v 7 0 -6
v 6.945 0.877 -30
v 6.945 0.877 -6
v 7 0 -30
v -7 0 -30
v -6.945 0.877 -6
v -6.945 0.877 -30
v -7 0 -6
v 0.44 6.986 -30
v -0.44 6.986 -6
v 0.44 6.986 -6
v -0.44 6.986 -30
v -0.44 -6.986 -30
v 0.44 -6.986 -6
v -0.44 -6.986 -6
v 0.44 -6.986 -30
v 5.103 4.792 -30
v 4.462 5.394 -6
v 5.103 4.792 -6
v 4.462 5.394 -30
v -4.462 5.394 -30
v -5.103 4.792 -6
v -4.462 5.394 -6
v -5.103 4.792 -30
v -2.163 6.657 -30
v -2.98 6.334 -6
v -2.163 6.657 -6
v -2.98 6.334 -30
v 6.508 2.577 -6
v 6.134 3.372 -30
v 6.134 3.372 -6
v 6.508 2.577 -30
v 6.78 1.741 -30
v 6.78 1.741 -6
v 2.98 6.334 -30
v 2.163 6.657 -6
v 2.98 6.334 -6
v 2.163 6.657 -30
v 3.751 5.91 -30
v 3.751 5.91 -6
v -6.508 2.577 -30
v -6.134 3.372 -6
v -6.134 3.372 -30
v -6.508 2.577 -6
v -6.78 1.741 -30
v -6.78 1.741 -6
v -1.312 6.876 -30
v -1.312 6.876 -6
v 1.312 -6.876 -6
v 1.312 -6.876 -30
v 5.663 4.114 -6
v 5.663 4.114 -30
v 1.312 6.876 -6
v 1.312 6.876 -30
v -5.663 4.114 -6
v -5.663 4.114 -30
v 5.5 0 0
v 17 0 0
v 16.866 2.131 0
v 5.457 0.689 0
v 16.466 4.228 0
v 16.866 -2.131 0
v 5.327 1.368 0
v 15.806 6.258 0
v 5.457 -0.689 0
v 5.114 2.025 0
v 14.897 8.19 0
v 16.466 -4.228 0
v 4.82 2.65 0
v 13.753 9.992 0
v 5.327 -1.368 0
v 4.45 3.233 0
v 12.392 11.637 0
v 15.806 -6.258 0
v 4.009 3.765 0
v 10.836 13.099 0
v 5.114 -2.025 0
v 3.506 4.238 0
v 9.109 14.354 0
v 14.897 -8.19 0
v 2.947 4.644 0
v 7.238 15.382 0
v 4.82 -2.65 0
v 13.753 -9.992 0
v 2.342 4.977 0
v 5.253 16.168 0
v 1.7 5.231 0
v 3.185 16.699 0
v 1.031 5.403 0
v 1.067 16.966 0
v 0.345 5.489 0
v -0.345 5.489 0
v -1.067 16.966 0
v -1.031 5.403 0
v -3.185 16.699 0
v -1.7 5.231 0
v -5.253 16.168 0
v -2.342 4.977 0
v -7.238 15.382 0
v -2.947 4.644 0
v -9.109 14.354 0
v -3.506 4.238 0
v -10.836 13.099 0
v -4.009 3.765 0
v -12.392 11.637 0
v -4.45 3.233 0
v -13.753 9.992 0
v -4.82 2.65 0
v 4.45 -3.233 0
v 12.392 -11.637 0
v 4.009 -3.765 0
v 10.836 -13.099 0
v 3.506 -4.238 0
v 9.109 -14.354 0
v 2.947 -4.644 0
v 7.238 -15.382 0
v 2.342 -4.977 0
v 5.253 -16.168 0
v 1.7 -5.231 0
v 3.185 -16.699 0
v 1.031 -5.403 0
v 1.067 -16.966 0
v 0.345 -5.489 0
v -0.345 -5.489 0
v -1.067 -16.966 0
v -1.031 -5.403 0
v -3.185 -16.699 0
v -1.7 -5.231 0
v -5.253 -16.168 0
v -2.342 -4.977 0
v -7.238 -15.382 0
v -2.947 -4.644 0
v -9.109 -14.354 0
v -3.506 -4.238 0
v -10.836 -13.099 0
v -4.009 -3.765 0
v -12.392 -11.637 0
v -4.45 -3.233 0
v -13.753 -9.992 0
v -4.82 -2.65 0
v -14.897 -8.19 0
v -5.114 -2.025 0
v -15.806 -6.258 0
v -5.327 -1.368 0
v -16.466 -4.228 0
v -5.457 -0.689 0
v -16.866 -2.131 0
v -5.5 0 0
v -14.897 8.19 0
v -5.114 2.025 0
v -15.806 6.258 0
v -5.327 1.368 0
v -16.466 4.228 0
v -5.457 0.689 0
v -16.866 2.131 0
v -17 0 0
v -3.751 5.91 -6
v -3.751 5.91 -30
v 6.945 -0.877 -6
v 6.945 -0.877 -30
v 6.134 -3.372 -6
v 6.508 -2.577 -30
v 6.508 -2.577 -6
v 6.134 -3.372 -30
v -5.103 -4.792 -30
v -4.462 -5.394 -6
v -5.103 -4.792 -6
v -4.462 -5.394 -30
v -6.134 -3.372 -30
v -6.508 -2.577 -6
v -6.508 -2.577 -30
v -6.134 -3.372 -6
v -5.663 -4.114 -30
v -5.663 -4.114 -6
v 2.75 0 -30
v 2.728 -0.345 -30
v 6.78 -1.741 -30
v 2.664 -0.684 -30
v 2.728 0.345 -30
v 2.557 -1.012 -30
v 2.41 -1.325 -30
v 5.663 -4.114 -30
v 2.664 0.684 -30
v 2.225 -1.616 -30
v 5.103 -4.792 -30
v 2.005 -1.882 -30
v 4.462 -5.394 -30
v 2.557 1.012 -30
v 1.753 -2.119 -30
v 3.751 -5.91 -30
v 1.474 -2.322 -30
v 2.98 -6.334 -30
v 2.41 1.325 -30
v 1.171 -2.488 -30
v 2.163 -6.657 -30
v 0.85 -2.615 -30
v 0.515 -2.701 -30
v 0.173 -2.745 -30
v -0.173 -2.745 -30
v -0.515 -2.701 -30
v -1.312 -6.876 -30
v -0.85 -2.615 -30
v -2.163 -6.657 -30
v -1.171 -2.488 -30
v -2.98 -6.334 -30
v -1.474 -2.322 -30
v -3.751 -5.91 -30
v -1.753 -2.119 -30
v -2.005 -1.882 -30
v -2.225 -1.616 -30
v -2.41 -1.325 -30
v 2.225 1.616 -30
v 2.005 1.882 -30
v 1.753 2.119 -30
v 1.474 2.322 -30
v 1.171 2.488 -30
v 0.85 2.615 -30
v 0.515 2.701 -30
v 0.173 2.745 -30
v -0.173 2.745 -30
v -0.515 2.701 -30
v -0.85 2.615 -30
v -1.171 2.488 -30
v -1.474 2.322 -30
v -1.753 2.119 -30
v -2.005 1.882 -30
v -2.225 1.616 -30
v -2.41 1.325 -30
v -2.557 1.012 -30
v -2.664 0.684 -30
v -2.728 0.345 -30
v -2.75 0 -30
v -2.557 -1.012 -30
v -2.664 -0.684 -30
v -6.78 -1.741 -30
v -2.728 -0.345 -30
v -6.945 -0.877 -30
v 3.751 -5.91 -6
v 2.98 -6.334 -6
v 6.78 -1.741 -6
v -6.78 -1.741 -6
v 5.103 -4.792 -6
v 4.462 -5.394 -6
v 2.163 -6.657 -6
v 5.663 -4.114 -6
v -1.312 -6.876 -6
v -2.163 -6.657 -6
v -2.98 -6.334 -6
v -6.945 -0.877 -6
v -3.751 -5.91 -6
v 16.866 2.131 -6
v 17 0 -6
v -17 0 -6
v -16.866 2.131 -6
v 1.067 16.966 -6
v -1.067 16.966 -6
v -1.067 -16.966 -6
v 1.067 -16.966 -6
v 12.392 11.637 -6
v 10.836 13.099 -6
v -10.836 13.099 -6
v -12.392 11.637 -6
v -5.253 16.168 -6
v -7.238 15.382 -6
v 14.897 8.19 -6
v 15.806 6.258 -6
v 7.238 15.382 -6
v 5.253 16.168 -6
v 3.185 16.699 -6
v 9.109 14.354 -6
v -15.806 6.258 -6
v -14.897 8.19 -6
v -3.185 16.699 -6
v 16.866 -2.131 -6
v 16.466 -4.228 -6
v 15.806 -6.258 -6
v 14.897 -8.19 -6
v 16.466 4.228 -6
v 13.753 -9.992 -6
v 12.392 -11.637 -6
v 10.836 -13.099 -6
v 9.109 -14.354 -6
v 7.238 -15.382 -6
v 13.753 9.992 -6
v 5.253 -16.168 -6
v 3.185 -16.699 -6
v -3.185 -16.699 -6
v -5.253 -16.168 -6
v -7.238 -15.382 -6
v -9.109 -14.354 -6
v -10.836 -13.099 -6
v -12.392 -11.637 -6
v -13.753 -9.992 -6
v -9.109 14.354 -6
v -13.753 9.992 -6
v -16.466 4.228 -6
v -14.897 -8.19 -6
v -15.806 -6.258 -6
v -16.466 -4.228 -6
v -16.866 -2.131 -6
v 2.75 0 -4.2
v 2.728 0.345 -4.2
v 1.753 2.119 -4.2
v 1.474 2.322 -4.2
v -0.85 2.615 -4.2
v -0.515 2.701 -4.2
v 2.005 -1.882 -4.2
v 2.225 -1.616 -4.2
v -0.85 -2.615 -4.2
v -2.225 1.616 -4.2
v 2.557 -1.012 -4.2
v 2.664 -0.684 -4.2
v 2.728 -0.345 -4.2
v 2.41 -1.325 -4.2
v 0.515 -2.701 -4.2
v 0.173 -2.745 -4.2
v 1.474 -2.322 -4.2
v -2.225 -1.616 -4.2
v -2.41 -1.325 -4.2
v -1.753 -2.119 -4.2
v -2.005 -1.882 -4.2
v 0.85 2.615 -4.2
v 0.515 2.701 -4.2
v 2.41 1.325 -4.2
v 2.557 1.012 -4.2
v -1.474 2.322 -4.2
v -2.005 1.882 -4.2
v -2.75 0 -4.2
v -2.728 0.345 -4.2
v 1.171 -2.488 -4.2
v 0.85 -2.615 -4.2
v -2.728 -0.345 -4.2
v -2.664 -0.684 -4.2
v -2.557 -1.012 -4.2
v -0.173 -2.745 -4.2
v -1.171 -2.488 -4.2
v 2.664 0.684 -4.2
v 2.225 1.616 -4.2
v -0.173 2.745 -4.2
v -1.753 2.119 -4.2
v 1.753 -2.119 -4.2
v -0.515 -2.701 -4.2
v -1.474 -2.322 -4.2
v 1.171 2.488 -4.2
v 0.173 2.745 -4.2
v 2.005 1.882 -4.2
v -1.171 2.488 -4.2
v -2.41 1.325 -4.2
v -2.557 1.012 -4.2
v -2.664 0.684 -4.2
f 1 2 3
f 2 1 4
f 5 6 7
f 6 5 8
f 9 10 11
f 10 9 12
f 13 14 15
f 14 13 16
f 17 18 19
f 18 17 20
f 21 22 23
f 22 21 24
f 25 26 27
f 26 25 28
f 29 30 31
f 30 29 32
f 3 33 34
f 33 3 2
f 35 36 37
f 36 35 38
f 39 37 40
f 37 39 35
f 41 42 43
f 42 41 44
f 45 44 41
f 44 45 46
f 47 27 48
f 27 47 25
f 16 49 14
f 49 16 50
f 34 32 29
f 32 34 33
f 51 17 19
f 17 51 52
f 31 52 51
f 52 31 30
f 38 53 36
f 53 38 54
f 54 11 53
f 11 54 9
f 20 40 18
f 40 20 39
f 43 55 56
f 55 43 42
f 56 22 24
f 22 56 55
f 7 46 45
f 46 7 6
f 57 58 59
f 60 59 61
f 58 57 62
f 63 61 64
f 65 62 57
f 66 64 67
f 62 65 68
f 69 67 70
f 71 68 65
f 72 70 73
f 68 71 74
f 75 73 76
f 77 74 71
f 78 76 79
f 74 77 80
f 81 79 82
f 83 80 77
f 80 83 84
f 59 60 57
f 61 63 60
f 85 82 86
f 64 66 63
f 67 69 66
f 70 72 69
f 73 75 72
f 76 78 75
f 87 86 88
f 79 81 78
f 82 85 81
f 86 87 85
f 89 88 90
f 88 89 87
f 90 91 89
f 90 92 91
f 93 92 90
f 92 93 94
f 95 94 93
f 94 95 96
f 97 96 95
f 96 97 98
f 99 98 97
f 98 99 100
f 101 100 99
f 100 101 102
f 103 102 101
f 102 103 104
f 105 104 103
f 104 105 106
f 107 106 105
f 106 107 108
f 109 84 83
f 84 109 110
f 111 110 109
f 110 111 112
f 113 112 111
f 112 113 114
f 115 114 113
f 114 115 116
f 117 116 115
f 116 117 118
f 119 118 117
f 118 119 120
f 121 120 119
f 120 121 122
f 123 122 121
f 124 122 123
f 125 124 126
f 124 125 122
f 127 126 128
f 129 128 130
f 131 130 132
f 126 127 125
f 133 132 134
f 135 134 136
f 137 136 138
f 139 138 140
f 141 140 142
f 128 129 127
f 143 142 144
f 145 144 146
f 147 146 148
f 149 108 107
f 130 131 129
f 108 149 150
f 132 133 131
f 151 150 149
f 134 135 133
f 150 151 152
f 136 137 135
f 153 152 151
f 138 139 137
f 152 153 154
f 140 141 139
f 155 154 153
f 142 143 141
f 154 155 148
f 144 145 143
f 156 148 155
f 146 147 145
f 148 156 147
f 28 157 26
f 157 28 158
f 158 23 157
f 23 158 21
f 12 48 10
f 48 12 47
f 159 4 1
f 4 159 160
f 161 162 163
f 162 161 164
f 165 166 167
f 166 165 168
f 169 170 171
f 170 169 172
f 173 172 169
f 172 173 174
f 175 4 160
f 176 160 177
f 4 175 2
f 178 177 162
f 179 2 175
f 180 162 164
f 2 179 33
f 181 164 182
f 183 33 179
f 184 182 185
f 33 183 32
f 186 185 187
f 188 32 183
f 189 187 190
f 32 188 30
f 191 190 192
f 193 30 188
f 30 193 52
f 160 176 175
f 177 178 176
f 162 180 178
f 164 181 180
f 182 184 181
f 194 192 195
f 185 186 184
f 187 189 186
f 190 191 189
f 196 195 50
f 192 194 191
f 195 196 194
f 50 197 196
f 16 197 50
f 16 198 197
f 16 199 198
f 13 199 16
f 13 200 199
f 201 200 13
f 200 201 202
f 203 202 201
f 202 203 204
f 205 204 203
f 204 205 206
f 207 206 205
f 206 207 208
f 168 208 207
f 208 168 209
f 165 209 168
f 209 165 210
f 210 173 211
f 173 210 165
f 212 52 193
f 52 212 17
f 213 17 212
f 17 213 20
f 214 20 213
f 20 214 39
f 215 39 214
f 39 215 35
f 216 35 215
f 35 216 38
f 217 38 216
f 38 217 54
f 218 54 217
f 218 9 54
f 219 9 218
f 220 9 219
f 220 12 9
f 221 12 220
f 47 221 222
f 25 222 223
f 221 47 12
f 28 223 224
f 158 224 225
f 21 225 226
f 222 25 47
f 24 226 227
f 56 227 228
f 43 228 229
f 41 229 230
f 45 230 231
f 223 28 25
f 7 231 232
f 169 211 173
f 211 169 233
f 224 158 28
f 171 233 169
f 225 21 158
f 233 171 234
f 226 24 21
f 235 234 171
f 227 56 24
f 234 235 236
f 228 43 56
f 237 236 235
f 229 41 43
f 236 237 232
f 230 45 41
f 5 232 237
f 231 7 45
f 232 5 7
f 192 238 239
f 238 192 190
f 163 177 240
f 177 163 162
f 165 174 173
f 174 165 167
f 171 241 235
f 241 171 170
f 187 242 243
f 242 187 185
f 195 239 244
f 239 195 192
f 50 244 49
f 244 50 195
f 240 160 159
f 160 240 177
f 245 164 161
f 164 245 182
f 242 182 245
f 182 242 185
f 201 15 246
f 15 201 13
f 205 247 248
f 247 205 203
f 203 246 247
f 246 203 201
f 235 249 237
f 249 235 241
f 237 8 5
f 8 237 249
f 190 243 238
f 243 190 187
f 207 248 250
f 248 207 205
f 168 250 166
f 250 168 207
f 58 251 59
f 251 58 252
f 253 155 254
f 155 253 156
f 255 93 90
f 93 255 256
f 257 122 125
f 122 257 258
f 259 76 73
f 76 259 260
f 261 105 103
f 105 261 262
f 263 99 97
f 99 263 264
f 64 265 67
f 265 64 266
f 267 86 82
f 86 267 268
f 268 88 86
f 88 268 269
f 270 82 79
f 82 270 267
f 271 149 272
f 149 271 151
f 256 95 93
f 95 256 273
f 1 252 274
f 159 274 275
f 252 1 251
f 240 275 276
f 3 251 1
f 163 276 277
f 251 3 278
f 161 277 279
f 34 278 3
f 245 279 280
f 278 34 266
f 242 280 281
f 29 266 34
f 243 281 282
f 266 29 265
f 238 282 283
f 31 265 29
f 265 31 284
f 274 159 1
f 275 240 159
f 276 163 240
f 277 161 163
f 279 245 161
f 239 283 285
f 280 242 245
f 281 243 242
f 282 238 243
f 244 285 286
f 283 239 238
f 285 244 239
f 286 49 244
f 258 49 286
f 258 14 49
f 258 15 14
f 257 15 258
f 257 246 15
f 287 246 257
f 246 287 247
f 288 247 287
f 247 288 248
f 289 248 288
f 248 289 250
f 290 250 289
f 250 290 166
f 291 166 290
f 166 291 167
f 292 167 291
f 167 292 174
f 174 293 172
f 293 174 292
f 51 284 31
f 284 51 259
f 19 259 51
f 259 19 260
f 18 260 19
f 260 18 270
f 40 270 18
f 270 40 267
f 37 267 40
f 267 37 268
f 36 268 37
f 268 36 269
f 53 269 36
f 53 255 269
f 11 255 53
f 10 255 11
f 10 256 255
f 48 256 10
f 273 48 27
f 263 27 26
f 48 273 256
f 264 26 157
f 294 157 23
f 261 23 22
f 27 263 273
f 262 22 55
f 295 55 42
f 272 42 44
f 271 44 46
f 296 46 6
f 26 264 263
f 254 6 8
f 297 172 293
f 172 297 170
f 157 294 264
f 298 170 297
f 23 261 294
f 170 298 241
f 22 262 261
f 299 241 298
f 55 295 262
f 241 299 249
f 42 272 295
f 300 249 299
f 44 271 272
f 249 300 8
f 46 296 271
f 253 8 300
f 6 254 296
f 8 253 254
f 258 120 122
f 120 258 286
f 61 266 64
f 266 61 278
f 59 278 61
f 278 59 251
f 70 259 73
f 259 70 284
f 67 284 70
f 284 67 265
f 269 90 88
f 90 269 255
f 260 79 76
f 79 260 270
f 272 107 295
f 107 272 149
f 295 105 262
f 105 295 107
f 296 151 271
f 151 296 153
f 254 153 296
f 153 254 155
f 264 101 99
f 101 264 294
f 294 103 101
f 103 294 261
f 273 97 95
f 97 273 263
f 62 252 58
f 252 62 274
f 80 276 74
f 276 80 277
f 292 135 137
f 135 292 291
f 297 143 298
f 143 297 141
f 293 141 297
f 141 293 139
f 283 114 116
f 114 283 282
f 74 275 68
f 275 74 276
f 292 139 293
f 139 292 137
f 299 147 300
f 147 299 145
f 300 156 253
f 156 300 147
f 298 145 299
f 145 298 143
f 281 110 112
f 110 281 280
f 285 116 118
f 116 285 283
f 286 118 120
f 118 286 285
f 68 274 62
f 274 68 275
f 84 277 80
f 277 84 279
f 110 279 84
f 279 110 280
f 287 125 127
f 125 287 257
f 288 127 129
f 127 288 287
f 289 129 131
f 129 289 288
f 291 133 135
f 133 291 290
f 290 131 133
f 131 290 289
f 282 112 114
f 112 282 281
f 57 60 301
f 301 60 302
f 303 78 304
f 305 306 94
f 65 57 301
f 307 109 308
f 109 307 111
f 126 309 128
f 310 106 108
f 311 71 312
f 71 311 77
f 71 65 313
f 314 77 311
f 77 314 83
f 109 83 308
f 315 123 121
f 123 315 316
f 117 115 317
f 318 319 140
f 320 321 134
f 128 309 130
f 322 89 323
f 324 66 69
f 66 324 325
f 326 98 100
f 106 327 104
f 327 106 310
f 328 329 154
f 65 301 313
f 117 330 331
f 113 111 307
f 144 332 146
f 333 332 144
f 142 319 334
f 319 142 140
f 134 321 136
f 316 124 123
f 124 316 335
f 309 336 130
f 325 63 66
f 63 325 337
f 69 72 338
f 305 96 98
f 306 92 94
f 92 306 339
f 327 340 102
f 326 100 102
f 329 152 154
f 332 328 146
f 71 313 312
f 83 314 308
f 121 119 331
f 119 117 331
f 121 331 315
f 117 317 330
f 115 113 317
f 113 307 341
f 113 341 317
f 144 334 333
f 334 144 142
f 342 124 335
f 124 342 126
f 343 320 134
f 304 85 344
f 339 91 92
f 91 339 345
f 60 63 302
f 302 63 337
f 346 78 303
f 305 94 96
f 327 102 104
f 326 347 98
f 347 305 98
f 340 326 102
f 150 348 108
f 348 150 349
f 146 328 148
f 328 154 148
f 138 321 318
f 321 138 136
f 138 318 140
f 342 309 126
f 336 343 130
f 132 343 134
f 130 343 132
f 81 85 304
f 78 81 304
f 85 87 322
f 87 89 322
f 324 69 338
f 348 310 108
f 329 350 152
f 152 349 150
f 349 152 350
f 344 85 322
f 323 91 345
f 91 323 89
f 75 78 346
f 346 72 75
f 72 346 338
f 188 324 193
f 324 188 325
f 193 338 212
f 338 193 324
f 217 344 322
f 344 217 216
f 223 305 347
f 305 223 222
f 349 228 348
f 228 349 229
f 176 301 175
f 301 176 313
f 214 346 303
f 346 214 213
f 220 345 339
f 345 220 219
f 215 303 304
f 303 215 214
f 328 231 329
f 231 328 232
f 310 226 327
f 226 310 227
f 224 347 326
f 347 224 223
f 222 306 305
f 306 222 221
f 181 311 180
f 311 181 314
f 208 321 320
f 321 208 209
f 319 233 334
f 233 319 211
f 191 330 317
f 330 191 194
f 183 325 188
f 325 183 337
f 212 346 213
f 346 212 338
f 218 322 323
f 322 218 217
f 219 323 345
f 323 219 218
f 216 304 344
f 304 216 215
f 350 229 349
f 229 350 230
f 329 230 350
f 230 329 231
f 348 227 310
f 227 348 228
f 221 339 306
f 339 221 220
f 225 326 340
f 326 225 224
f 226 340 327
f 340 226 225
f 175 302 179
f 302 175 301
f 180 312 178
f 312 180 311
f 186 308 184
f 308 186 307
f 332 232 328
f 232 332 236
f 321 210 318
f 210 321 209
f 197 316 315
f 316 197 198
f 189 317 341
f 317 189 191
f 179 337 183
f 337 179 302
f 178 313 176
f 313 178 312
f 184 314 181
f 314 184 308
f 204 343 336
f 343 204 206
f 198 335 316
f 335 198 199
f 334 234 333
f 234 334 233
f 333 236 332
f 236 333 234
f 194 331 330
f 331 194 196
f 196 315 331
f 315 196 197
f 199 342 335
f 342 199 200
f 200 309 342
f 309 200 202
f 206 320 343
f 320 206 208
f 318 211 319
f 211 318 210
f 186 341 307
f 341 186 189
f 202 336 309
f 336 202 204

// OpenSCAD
$fn = 50;


difference() {
	union() {
		translate(v = [0, 0, -30.0000000000]) {
			cylinder(h = 30, r = 7.0000000000);
		}
		translate(v = [0, 0, -6.0000000000]) {
			cylinder(h = 6, r = 17.0000000000);
		}
	}
	union() {
		translate(v = [0, 0, 0]) {
			rotate(a = [0, 0, 0]) {
				difference() {
					union() {
						#translate(v = [0, 0, -30.0000000000]) {
							cylinder(h = 30, r = 2.2500000000);
						}
						#translate(v = [0, 0, -4.2000000000]) {
							cylinder(h = 4.2000000000, r = 7.0000000000, r1 = 2.7500000000, r2 = 5.5000000000);
						}
						#translate(v = [0, 0, -30.0000000000]) {
							cylinder(h = 30, r = 2.7500000000);
						}
						#translate(v = [0, 0, -30.0000000000]) {
							cylinder(h = 30, r = 2.2500000000);
						}
					}
					union();
				}
			}
		}
	}
}
